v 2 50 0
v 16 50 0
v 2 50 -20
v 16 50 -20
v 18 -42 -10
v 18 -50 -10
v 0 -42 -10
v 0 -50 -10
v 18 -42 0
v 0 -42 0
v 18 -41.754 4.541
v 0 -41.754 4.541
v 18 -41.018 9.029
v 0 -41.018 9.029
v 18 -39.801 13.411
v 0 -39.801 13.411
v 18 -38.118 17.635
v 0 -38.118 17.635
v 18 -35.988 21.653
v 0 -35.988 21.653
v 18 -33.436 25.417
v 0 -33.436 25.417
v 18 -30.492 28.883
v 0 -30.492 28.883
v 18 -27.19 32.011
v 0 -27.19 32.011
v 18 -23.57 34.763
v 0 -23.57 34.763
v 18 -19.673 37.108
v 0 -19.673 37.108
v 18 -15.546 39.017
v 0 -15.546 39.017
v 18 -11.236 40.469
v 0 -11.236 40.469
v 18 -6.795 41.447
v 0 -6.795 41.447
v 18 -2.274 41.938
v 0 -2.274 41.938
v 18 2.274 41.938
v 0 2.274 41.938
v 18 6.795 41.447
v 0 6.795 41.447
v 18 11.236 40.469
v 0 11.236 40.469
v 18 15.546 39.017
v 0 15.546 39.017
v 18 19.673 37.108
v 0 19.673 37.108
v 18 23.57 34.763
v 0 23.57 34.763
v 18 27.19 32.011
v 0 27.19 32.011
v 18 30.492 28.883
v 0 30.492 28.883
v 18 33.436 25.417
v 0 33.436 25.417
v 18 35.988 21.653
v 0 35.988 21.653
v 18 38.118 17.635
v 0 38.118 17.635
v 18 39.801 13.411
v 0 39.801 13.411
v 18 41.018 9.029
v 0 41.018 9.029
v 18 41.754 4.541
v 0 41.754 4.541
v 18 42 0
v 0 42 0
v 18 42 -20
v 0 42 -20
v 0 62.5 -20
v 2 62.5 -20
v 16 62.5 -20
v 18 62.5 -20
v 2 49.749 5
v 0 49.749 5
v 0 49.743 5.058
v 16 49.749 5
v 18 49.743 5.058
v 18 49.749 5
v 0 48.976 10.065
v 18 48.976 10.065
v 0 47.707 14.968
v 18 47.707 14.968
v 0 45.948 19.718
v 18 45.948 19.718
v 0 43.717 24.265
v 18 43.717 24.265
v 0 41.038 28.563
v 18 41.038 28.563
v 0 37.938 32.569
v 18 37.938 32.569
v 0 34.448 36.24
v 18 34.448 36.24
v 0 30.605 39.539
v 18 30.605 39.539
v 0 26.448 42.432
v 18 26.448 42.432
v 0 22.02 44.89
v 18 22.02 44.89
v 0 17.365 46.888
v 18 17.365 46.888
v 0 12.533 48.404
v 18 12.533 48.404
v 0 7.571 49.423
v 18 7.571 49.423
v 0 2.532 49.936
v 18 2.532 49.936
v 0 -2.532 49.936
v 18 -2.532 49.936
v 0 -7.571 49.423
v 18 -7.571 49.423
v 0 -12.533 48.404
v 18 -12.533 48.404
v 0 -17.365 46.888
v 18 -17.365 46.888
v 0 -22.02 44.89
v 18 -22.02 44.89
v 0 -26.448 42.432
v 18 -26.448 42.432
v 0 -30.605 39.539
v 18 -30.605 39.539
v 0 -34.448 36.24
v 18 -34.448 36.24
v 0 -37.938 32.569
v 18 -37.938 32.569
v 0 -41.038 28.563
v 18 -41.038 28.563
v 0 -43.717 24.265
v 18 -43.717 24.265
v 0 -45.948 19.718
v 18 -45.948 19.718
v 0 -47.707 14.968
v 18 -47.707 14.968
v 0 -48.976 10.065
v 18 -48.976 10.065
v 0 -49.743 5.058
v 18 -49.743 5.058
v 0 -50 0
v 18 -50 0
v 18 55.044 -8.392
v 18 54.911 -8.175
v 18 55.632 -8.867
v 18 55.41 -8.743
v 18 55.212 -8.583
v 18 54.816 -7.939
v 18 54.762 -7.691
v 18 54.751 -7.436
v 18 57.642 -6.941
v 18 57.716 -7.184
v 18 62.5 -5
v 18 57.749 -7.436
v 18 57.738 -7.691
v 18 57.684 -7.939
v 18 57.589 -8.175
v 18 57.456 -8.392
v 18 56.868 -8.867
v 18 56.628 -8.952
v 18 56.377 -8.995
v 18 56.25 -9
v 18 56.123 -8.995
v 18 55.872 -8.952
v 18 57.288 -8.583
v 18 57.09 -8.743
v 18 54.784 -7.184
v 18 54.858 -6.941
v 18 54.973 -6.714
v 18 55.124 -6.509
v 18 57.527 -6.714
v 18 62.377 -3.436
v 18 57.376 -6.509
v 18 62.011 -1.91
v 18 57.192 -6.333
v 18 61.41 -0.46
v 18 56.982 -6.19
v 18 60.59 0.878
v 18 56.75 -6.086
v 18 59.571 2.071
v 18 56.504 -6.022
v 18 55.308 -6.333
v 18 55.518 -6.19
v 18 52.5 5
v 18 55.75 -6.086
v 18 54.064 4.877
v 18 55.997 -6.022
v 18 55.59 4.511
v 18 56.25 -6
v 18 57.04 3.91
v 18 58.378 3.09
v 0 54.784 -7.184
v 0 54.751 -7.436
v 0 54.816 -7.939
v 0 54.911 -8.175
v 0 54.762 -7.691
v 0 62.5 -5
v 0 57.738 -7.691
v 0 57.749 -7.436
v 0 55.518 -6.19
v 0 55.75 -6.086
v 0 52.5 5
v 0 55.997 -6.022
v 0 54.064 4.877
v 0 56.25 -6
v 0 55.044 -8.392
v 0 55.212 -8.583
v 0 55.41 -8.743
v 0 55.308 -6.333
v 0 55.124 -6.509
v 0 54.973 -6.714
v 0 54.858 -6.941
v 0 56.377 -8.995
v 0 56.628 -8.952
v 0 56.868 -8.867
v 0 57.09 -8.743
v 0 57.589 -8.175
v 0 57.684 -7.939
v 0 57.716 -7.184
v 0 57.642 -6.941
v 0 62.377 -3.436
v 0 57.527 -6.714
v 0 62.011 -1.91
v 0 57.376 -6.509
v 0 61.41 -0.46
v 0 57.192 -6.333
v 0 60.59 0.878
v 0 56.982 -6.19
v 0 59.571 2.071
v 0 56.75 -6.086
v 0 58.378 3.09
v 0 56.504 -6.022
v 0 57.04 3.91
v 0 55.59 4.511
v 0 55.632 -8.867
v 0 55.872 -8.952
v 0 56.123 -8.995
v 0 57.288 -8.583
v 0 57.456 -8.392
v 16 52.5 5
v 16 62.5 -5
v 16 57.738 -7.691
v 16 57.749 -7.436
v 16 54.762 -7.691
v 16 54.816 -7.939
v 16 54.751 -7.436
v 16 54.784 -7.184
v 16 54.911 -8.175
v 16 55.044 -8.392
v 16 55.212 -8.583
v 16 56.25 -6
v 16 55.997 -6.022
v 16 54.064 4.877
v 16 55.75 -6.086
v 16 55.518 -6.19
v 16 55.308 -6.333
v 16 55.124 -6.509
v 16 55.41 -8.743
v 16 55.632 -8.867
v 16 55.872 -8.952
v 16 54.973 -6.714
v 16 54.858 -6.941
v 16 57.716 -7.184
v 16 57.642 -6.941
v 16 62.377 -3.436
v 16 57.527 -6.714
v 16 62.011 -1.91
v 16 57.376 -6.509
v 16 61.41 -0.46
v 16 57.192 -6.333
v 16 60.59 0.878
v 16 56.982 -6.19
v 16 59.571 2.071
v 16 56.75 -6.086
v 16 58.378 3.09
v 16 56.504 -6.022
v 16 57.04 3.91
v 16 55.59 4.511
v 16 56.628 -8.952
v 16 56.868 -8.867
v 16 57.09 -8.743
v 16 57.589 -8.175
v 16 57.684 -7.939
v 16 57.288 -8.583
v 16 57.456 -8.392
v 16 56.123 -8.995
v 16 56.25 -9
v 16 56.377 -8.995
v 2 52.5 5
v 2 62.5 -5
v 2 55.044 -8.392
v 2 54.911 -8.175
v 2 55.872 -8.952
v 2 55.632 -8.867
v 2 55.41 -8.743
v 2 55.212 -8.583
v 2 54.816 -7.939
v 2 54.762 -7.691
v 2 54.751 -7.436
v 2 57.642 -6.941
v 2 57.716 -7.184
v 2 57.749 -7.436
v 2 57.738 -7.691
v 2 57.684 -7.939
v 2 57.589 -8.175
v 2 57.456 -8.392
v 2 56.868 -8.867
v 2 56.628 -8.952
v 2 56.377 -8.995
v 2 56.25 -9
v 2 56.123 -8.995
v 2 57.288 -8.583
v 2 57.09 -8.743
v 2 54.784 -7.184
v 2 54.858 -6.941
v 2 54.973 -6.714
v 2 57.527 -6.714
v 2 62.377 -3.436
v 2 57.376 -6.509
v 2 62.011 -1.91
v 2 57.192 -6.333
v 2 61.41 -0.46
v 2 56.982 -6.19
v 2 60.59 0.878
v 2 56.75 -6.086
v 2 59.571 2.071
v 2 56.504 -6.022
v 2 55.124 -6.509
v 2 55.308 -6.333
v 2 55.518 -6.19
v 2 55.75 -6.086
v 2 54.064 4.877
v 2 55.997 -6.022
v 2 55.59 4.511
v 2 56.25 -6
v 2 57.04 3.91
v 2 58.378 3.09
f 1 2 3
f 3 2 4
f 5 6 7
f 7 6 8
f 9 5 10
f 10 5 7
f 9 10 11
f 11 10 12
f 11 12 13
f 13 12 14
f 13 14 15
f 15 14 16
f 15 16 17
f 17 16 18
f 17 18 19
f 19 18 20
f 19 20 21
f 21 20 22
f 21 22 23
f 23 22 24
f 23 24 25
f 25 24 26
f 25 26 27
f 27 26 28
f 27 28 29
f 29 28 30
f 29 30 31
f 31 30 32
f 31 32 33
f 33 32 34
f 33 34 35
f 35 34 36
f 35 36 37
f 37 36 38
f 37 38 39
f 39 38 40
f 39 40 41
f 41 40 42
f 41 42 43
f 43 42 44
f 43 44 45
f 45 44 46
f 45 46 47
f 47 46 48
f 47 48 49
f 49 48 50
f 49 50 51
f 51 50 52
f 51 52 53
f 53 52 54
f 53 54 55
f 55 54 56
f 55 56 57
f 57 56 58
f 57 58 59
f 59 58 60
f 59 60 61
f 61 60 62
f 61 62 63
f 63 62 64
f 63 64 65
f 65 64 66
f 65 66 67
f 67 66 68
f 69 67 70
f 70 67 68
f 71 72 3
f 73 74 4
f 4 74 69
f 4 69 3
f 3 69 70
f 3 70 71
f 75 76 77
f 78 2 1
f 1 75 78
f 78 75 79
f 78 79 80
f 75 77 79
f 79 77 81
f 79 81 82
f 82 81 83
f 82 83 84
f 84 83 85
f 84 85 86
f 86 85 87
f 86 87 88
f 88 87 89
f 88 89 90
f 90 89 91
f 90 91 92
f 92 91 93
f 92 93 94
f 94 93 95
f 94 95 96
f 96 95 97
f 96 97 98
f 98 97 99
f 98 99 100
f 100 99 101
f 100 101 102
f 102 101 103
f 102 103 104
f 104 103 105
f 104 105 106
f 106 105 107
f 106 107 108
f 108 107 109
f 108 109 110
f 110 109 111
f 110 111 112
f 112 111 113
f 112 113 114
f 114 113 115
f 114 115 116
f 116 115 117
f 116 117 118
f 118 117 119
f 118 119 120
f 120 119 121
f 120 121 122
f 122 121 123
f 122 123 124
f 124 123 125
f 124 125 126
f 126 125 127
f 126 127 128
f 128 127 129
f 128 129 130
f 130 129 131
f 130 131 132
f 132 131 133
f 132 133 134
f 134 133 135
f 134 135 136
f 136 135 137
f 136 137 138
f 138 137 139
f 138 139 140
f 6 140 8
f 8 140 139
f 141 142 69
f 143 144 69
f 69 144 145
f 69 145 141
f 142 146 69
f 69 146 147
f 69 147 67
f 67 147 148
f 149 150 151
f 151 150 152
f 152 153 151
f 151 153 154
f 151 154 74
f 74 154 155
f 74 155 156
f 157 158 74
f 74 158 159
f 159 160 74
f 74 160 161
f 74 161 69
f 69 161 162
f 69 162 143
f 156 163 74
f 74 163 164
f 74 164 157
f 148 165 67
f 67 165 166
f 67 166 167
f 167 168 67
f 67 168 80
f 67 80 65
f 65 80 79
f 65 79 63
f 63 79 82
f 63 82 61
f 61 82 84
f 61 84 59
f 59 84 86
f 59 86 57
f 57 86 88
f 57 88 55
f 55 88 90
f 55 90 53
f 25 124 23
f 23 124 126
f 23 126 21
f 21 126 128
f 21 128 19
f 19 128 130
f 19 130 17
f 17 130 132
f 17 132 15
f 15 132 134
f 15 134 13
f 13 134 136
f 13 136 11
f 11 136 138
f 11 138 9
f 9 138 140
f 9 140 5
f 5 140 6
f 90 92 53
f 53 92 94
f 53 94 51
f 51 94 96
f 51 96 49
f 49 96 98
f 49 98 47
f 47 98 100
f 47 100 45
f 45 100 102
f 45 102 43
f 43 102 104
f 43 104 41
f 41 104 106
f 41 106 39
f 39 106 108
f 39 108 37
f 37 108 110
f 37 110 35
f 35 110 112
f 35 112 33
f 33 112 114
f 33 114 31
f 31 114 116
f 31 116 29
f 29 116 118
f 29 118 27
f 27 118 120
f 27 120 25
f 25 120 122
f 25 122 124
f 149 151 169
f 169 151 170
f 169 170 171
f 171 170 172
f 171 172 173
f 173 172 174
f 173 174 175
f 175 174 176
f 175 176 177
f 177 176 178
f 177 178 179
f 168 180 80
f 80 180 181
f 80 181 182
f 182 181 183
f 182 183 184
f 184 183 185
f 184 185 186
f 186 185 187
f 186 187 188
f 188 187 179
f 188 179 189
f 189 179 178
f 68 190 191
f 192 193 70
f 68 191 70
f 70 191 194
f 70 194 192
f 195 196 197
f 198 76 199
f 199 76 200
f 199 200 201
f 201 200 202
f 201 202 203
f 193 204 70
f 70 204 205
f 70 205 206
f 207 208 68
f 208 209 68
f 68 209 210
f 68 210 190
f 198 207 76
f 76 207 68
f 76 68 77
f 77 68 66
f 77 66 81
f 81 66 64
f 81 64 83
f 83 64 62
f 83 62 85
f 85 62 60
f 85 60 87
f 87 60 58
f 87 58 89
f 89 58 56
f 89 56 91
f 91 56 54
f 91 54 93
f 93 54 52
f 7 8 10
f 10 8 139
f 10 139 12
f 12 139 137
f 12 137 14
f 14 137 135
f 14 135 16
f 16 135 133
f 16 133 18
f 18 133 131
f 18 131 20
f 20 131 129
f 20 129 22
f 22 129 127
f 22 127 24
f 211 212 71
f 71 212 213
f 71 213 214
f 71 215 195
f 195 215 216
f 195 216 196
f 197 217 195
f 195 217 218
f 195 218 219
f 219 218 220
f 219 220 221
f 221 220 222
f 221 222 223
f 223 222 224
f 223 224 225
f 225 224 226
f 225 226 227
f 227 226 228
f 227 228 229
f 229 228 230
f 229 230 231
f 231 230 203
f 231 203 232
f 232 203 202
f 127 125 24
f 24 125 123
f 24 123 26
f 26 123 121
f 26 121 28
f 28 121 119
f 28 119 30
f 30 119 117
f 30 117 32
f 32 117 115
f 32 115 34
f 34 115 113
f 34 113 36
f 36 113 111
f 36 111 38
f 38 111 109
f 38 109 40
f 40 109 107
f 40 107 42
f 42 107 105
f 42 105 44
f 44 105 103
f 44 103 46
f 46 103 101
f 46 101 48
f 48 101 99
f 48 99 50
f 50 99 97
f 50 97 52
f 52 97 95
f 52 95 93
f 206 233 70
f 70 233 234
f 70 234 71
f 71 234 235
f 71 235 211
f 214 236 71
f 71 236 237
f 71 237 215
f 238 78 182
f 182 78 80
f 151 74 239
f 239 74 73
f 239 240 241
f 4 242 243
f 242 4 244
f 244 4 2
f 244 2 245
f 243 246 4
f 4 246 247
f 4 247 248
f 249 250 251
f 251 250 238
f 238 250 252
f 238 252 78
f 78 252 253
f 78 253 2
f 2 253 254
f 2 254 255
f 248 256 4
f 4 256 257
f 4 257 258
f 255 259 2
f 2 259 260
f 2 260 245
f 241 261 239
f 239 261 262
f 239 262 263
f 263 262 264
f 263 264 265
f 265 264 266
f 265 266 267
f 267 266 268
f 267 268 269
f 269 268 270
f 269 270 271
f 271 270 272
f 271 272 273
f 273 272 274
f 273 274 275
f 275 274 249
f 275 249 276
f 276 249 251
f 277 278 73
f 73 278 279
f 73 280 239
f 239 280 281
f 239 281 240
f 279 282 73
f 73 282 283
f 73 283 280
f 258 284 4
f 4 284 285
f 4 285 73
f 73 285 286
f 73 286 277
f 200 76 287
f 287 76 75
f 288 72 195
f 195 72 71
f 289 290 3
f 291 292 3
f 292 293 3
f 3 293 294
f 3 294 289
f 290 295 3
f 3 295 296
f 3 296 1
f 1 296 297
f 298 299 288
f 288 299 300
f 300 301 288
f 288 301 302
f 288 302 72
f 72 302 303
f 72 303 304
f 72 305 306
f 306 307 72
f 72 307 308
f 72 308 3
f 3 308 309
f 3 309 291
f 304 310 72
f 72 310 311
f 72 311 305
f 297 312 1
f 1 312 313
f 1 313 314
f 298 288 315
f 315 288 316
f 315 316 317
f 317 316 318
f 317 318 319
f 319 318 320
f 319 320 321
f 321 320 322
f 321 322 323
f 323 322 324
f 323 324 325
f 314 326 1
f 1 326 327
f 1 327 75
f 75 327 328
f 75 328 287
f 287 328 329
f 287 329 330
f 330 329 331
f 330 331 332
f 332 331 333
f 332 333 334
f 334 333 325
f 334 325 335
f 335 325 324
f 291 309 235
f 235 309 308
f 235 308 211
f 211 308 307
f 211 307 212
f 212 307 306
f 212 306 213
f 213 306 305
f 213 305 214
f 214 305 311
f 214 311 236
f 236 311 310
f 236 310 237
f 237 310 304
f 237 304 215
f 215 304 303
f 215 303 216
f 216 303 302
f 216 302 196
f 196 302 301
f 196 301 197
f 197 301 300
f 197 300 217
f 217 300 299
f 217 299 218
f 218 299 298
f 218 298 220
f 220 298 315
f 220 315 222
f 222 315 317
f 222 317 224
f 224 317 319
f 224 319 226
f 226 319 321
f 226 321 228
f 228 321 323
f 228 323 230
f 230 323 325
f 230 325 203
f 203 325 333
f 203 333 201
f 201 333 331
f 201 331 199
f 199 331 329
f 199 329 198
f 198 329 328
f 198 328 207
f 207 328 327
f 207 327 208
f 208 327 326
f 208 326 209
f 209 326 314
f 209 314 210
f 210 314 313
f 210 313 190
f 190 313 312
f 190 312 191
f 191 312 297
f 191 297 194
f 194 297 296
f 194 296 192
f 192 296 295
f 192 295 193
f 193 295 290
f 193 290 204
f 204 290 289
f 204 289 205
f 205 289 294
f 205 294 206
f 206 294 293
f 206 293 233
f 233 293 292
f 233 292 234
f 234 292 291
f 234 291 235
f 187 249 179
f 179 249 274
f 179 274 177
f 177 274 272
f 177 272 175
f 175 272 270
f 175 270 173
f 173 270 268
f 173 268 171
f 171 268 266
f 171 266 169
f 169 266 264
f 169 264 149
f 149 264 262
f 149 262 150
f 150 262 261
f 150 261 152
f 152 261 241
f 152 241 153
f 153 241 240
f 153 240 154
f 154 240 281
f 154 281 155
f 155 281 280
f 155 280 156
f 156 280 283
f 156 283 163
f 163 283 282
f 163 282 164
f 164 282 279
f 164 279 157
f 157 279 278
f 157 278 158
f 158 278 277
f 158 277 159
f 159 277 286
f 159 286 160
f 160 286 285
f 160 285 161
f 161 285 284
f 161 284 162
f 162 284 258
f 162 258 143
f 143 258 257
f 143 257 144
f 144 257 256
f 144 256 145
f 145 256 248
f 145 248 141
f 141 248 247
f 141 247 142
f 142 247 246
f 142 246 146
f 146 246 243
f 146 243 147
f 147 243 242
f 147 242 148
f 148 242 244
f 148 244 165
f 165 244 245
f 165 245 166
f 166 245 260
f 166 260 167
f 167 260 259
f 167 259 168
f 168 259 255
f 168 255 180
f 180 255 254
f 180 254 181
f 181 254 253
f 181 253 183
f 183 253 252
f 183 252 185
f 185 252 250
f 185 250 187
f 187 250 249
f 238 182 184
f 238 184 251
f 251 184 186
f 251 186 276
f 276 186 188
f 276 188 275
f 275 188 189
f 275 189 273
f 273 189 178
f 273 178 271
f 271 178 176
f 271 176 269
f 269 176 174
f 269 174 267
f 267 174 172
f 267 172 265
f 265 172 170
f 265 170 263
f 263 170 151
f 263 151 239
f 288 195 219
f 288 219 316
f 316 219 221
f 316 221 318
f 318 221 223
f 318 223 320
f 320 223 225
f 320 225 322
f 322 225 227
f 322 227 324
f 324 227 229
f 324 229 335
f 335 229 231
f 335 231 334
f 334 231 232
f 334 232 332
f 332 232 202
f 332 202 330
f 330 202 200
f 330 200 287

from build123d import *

# Parameters (mm, degrees)
BOSS_EXTRUDE1_DEPTH = 18
SKETCH2_W           = 25
SKETCH2_H           = 16.5
BOSS_EXTRUDE2_DEPTH = 2
SKETCH3_W           = 25
SKETCH3_H           = 16.5
BOSS_EXTRUDE3_DEPTH = 2
SKETCH4_R           = 1.5
CUT_EXTRUDE1_DEPTH  = 32
FILLET1_R           = 10


with BuildPart() as part:
    # Sketch1 → Boss-Extrude1 (new body)
    with BuildSketch(Plane(origin=(0, 0, 0), x_dir=(0, 0, -1), z_dir=(1, 0, 0))):
        with BuildLine():
            Line((0, -42), (10, -42))
            Line((10, -42), (10, -50))
            Line((10, -50), (0, -50))
            ThreePointArc((0, -50), (-50, 0), (0, 50))
            Line((0, 50), (20, 50))
            Line((20, 50), (20, 42))
            Line((20, 42), (0, 42))
            ThreePointArc((0, 42), (-42, 0), (0, -42))
        make_face()
    extrude(amount=BOSS_EXTRUDE1_DEPTH)

    # Sketch2 → Boss-Extrude2 (add)
    with BuildSketch(Plane(origin=(18, 0, 0), x_dir=(0, 0, -1), z_dir=(1, 0, 0))):
        with Locations((7.5, 54.25)):
            Rectangle(SKETCH2_W, SKETCH2_H)
    extrude(amount=-BOSS_EXTRUDE2_DEPTH)

    # Sketch3 → Boss-Extrude3 (add)
    with BuildSketch(Plane.ZY):
        with Locations((-7.5, 54.25)):
            Rectangle(SKETCH3_W, SKETCH3_H)
    extrude(amount=-BOSS_EXTRUDE3_DEPTH)

    # Sketch4 → Cut-Extrude1 (cut)
    with BuildSketch(Plane.ZY):
        with Locations((-7.5, 56.25)):
            Circle(SKETCH4_R)
    extrude(amount=-CUT_EXTRUDE1_DEPTH, mode=Mode.SUBTRACT)

    # Fillet1
    fillet1_edges = [part.edges().sort_by_distance(p)[0] for p in [
        (17, 62.5, 5),
        (1, 62.5, 5),
    ]]
    fillet(fillet1_edges, radius=FILLET1_R)


solid = part.part
